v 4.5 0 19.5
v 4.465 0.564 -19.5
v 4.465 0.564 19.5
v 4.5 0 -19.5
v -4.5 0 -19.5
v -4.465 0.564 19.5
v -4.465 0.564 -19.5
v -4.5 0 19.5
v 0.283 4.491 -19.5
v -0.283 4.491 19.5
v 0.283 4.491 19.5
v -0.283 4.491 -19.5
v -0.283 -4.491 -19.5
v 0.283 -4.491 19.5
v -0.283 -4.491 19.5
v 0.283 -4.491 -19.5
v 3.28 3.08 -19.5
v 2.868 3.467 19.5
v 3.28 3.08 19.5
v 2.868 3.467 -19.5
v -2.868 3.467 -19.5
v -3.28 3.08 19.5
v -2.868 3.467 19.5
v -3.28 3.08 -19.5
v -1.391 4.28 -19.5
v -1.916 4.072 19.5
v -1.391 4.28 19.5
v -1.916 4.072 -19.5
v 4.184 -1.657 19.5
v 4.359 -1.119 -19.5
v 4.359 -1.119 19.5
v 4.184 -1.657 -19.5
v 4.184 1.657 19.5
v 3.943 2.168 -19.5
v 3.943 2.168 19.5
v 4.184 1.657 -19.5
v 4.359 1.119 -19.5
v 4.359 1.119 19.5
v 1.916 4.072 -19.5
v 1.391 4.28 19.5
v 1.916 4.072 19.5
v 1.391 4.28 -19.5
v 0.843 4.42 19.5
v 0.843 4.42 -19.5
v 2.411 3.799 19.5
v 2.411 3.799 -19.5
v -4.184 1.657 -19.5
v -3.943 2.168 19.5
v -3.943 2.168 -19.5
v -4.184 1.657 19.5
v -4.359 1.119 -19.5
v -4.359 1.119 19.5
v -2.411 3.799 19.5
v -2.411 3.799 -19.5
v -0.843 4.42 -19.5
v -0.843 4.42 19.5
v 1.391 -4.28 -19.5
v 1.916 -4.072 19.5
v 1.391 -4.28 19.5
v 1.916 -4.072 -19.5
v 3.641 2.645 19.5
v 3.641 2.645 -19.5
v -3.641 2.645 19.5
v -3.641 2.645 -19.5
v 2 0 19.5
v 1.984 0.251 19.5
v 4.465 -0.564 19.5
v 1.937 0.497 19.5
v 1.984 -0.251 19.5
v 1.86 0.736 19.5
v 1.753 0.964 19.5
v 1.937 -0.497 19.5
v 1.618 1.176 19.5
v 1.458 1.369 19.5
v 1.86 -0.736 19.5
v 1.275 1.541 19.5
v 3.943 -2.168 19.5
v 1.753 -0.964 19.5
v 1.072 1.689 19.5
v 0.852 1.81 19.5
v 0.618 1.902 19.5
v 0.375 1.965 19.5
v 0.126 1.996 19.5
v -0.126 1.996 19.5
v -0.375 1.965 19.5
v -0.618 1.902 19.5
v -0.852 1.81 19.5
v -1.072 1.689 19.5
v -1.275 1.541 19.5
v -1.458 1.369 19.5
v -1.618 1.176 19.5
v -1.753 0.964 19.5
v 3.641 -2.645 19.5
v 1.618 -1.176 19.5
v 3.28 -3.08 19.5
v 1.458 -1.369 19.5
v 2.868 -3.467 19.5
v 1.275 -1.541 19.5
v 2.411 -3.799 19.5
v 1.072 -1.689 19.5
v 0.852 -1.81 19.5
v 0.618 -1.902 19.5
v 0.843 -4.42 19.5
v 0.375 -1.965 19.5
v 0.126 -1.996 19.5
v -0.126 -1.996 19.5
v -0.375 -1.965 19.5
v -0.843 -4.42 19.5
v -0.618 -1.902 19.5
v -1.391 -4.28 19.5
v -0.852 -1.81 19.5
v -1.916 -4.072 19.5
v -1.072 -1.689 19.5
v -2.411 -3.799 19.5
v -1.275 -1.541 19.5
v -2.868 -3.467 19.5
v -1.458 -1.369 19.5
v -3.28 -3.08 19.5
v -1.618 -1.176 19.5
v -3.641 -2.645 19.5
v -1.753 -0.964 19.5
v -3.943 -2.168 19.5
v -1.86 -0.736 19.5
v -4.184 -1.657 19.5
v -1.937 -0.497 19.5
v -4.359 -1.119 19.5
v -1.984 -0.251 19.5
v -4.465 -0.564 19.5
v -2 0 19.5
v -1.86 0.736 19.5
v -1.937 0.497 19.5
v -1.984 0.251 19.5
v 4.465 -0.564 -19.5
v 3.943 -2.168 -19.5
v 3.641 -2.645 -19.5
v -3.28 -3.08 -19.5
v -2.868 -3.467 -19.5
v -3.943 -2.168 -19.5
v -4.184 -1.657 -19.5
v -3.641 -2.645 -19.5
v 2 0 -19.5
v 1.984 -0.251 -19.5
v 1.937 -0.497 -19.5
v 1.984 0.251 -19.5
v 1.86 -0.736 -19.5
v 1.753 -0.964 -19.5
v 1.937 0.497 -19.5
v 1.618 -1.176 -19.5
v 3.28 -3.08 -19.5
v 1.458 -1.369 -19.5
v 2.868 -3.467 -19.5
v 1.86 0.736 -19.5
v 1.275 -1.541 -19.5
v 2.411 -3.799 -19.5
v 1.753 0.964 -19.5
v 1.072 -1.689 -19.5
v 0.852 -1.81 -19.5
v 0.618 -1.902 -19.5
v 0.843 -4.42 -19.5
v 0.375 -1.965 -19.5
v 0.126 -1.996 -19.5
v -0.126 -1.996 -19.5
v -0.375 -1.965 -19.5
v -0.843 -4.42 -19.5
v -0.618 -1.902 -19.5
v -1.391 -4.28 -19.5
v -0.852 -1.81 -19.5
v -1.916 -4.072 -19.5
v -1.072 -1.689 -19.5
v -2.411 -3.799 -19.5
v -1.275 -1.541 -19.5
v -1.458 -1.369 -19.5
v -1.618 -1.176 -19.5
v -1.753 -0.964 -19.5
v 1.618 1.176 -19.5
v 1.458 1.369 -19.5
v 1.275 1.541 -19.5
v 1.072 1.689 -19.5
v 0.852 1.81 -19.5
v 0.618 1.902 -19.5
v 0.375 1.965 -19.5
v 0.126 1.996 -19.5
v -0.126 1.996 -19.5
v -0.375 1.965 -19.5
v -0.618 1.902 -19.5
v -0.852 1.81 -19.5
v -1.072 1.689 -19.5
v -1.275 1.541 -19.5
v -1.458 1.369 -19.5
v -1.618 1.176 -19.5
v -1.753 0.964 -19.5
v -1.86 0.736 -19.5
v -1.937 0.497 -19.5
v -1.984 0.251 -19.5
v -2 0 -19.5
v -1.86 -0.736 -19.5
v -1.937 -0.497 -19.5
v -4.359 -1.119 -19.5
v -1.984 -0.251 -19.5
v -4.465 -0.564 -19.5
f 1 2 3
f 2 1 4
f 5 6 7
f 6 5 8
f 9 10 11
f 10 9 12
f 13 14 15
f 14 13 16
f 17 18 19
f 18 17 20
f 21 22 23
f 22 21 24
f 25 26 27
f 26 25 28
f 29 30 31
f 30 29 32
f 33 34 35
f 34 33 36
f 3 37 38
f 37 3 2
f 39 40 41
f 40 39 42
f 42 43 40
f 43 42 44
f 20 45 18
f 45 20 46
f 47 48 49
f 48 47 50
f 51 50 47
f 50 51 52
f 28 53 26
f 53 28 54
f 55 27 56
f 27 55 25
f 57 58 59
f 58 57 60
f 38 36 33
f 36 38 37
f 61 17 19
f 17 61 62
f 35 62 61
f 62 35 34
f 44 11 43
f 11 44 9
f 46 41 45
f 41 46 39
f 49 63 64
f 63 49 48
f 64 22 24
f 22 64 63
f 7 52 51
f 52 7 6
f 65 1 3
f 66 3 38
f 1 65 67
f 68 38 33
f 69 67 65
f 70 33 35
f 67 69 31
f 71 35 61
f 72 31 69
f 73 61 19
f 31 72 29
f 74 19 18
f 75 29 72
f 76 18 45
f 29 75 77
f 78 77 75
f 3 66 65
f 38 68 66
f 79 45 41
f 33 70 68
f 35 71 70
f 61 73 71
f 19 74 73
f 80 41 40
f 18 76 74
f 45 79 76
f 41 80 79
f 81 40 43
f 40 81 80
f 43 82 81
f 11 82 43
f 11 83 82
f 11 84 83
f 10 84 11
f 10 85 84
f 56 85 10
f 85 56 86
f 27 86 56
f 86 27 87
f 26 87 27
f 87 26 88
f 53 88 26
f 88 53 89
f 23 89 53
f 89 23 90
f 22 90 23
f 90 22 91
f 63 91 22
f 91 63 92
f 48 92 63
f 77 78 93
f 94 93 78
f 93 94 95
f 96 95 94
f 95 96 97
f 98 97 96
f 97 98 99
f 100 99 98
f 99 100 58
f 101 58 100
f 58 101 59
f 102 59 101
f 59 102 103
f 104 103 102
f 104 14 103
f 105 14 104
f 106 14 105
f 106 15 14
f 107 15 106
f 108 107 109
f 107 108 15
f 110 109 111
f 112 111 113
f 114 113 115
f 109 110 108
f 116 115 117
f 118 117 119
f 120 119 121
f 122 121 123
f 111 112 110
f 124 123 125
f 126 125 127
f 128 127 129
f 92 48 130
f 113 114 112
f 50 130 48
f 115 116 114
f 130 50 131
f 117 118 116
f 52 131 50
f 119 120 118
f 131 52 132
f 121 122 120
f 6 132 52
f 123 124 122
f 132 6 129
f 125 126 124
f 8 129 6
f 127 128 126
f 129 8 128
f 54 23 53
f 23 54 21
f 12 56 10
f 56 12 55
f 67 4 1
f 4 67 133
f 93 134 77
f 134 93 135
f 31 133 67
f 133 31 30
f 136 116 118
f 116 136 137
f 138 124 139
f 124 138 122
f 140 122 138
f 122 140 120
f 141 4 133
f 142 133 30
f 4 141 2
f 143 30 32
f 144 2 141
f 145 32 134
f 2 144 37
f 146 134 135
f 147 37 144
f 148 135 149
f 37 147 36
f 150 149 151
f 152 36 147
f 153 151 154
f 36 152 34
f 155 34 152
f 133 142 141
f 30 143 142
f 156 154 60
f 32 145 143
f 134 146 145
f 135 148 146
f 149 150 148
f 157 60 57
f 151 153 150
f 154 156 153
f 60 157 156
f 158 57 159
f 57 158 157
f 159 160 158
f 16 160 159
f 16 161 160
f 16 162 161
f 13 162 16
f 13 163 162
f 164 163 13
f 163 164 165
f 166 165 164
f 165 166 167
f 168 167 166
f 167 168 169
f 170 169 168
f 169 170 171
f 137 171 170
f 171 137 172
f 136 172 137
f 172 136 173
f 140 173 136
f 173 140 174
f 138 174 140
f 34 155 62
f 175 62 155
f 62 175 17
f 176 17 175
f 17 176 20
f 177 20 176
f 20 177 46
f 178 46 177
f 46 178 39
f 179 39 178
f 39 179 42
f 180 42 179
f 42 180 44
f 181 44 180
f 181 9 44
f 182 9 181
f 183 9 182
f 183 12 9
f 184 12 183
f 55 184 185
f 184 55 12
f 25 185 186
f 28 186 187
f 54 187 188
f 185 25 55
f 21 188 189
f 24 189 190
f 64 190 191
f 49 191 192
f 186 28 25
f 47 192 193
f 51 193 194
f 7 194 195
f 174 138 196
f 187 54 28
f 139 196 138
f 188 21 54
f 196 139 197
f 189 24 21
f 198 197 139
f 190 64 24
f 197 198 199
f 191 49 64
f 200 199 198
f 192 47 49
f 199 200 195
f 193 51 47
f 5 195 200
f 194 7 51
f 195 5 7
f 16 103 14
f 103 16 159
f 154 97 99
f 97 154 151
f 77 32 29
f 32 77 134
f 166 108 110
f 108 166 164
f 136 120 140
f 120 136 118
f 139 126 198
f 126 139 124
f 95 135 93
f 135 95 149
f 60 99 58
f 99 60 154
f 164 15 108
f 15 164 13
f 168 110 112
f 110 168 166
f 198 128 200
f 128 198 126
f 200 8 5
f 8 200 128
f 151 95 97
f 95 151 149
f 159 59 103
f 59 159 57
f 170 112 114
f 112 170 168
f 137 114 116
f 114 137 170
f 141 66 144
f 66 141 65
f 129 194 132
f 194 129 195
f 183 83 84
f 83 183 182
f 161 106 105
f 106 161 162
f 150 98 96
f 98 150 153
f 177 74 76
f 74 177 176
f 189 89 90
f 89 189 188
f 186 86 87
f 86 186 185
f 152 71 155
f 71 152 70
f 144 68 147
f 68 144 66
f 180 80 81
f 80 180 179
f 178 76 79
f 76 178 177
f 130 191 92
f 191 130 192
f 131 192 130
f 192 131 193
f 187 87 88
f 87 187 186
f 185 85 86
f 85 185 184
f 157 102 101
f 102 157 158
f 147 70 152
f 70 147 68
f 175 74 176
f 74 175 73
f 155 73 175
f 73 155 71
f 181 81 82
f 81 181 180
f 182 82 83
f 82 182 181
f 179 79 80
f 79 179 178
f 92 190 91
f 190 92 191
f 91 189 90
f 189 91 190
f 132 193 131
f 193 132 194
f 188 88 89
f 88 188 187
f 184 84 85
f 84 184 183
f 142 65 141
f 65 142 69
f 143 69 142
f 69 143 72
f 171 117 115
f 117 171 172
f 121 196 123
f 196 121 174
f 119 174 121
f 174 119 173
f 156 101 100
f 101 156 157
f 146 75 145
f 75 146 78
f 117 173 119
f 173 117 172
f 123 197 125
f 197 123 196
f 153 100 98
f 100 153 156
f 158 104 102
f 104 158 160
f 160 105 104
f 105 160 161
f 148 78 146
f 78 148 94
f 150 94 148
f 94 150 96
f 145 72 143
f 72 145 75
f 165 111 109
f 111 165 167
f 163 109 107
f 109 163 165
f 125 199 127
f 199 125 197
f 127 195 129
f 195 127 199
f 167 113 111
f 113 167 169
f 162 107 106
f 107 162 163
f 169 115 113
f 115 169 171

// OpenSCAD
$fn = 50;


difference() {
	union() {
		translate(v = [0, 0, -19.5000000000]) {
			cylinder(h = 39, r = 4.5000000000);
		}
	}
	union() {
		translate(v = [0, 0, -100.0000000000]) {
			cylinder(h = 200, r = 2);
		}
	}
}
